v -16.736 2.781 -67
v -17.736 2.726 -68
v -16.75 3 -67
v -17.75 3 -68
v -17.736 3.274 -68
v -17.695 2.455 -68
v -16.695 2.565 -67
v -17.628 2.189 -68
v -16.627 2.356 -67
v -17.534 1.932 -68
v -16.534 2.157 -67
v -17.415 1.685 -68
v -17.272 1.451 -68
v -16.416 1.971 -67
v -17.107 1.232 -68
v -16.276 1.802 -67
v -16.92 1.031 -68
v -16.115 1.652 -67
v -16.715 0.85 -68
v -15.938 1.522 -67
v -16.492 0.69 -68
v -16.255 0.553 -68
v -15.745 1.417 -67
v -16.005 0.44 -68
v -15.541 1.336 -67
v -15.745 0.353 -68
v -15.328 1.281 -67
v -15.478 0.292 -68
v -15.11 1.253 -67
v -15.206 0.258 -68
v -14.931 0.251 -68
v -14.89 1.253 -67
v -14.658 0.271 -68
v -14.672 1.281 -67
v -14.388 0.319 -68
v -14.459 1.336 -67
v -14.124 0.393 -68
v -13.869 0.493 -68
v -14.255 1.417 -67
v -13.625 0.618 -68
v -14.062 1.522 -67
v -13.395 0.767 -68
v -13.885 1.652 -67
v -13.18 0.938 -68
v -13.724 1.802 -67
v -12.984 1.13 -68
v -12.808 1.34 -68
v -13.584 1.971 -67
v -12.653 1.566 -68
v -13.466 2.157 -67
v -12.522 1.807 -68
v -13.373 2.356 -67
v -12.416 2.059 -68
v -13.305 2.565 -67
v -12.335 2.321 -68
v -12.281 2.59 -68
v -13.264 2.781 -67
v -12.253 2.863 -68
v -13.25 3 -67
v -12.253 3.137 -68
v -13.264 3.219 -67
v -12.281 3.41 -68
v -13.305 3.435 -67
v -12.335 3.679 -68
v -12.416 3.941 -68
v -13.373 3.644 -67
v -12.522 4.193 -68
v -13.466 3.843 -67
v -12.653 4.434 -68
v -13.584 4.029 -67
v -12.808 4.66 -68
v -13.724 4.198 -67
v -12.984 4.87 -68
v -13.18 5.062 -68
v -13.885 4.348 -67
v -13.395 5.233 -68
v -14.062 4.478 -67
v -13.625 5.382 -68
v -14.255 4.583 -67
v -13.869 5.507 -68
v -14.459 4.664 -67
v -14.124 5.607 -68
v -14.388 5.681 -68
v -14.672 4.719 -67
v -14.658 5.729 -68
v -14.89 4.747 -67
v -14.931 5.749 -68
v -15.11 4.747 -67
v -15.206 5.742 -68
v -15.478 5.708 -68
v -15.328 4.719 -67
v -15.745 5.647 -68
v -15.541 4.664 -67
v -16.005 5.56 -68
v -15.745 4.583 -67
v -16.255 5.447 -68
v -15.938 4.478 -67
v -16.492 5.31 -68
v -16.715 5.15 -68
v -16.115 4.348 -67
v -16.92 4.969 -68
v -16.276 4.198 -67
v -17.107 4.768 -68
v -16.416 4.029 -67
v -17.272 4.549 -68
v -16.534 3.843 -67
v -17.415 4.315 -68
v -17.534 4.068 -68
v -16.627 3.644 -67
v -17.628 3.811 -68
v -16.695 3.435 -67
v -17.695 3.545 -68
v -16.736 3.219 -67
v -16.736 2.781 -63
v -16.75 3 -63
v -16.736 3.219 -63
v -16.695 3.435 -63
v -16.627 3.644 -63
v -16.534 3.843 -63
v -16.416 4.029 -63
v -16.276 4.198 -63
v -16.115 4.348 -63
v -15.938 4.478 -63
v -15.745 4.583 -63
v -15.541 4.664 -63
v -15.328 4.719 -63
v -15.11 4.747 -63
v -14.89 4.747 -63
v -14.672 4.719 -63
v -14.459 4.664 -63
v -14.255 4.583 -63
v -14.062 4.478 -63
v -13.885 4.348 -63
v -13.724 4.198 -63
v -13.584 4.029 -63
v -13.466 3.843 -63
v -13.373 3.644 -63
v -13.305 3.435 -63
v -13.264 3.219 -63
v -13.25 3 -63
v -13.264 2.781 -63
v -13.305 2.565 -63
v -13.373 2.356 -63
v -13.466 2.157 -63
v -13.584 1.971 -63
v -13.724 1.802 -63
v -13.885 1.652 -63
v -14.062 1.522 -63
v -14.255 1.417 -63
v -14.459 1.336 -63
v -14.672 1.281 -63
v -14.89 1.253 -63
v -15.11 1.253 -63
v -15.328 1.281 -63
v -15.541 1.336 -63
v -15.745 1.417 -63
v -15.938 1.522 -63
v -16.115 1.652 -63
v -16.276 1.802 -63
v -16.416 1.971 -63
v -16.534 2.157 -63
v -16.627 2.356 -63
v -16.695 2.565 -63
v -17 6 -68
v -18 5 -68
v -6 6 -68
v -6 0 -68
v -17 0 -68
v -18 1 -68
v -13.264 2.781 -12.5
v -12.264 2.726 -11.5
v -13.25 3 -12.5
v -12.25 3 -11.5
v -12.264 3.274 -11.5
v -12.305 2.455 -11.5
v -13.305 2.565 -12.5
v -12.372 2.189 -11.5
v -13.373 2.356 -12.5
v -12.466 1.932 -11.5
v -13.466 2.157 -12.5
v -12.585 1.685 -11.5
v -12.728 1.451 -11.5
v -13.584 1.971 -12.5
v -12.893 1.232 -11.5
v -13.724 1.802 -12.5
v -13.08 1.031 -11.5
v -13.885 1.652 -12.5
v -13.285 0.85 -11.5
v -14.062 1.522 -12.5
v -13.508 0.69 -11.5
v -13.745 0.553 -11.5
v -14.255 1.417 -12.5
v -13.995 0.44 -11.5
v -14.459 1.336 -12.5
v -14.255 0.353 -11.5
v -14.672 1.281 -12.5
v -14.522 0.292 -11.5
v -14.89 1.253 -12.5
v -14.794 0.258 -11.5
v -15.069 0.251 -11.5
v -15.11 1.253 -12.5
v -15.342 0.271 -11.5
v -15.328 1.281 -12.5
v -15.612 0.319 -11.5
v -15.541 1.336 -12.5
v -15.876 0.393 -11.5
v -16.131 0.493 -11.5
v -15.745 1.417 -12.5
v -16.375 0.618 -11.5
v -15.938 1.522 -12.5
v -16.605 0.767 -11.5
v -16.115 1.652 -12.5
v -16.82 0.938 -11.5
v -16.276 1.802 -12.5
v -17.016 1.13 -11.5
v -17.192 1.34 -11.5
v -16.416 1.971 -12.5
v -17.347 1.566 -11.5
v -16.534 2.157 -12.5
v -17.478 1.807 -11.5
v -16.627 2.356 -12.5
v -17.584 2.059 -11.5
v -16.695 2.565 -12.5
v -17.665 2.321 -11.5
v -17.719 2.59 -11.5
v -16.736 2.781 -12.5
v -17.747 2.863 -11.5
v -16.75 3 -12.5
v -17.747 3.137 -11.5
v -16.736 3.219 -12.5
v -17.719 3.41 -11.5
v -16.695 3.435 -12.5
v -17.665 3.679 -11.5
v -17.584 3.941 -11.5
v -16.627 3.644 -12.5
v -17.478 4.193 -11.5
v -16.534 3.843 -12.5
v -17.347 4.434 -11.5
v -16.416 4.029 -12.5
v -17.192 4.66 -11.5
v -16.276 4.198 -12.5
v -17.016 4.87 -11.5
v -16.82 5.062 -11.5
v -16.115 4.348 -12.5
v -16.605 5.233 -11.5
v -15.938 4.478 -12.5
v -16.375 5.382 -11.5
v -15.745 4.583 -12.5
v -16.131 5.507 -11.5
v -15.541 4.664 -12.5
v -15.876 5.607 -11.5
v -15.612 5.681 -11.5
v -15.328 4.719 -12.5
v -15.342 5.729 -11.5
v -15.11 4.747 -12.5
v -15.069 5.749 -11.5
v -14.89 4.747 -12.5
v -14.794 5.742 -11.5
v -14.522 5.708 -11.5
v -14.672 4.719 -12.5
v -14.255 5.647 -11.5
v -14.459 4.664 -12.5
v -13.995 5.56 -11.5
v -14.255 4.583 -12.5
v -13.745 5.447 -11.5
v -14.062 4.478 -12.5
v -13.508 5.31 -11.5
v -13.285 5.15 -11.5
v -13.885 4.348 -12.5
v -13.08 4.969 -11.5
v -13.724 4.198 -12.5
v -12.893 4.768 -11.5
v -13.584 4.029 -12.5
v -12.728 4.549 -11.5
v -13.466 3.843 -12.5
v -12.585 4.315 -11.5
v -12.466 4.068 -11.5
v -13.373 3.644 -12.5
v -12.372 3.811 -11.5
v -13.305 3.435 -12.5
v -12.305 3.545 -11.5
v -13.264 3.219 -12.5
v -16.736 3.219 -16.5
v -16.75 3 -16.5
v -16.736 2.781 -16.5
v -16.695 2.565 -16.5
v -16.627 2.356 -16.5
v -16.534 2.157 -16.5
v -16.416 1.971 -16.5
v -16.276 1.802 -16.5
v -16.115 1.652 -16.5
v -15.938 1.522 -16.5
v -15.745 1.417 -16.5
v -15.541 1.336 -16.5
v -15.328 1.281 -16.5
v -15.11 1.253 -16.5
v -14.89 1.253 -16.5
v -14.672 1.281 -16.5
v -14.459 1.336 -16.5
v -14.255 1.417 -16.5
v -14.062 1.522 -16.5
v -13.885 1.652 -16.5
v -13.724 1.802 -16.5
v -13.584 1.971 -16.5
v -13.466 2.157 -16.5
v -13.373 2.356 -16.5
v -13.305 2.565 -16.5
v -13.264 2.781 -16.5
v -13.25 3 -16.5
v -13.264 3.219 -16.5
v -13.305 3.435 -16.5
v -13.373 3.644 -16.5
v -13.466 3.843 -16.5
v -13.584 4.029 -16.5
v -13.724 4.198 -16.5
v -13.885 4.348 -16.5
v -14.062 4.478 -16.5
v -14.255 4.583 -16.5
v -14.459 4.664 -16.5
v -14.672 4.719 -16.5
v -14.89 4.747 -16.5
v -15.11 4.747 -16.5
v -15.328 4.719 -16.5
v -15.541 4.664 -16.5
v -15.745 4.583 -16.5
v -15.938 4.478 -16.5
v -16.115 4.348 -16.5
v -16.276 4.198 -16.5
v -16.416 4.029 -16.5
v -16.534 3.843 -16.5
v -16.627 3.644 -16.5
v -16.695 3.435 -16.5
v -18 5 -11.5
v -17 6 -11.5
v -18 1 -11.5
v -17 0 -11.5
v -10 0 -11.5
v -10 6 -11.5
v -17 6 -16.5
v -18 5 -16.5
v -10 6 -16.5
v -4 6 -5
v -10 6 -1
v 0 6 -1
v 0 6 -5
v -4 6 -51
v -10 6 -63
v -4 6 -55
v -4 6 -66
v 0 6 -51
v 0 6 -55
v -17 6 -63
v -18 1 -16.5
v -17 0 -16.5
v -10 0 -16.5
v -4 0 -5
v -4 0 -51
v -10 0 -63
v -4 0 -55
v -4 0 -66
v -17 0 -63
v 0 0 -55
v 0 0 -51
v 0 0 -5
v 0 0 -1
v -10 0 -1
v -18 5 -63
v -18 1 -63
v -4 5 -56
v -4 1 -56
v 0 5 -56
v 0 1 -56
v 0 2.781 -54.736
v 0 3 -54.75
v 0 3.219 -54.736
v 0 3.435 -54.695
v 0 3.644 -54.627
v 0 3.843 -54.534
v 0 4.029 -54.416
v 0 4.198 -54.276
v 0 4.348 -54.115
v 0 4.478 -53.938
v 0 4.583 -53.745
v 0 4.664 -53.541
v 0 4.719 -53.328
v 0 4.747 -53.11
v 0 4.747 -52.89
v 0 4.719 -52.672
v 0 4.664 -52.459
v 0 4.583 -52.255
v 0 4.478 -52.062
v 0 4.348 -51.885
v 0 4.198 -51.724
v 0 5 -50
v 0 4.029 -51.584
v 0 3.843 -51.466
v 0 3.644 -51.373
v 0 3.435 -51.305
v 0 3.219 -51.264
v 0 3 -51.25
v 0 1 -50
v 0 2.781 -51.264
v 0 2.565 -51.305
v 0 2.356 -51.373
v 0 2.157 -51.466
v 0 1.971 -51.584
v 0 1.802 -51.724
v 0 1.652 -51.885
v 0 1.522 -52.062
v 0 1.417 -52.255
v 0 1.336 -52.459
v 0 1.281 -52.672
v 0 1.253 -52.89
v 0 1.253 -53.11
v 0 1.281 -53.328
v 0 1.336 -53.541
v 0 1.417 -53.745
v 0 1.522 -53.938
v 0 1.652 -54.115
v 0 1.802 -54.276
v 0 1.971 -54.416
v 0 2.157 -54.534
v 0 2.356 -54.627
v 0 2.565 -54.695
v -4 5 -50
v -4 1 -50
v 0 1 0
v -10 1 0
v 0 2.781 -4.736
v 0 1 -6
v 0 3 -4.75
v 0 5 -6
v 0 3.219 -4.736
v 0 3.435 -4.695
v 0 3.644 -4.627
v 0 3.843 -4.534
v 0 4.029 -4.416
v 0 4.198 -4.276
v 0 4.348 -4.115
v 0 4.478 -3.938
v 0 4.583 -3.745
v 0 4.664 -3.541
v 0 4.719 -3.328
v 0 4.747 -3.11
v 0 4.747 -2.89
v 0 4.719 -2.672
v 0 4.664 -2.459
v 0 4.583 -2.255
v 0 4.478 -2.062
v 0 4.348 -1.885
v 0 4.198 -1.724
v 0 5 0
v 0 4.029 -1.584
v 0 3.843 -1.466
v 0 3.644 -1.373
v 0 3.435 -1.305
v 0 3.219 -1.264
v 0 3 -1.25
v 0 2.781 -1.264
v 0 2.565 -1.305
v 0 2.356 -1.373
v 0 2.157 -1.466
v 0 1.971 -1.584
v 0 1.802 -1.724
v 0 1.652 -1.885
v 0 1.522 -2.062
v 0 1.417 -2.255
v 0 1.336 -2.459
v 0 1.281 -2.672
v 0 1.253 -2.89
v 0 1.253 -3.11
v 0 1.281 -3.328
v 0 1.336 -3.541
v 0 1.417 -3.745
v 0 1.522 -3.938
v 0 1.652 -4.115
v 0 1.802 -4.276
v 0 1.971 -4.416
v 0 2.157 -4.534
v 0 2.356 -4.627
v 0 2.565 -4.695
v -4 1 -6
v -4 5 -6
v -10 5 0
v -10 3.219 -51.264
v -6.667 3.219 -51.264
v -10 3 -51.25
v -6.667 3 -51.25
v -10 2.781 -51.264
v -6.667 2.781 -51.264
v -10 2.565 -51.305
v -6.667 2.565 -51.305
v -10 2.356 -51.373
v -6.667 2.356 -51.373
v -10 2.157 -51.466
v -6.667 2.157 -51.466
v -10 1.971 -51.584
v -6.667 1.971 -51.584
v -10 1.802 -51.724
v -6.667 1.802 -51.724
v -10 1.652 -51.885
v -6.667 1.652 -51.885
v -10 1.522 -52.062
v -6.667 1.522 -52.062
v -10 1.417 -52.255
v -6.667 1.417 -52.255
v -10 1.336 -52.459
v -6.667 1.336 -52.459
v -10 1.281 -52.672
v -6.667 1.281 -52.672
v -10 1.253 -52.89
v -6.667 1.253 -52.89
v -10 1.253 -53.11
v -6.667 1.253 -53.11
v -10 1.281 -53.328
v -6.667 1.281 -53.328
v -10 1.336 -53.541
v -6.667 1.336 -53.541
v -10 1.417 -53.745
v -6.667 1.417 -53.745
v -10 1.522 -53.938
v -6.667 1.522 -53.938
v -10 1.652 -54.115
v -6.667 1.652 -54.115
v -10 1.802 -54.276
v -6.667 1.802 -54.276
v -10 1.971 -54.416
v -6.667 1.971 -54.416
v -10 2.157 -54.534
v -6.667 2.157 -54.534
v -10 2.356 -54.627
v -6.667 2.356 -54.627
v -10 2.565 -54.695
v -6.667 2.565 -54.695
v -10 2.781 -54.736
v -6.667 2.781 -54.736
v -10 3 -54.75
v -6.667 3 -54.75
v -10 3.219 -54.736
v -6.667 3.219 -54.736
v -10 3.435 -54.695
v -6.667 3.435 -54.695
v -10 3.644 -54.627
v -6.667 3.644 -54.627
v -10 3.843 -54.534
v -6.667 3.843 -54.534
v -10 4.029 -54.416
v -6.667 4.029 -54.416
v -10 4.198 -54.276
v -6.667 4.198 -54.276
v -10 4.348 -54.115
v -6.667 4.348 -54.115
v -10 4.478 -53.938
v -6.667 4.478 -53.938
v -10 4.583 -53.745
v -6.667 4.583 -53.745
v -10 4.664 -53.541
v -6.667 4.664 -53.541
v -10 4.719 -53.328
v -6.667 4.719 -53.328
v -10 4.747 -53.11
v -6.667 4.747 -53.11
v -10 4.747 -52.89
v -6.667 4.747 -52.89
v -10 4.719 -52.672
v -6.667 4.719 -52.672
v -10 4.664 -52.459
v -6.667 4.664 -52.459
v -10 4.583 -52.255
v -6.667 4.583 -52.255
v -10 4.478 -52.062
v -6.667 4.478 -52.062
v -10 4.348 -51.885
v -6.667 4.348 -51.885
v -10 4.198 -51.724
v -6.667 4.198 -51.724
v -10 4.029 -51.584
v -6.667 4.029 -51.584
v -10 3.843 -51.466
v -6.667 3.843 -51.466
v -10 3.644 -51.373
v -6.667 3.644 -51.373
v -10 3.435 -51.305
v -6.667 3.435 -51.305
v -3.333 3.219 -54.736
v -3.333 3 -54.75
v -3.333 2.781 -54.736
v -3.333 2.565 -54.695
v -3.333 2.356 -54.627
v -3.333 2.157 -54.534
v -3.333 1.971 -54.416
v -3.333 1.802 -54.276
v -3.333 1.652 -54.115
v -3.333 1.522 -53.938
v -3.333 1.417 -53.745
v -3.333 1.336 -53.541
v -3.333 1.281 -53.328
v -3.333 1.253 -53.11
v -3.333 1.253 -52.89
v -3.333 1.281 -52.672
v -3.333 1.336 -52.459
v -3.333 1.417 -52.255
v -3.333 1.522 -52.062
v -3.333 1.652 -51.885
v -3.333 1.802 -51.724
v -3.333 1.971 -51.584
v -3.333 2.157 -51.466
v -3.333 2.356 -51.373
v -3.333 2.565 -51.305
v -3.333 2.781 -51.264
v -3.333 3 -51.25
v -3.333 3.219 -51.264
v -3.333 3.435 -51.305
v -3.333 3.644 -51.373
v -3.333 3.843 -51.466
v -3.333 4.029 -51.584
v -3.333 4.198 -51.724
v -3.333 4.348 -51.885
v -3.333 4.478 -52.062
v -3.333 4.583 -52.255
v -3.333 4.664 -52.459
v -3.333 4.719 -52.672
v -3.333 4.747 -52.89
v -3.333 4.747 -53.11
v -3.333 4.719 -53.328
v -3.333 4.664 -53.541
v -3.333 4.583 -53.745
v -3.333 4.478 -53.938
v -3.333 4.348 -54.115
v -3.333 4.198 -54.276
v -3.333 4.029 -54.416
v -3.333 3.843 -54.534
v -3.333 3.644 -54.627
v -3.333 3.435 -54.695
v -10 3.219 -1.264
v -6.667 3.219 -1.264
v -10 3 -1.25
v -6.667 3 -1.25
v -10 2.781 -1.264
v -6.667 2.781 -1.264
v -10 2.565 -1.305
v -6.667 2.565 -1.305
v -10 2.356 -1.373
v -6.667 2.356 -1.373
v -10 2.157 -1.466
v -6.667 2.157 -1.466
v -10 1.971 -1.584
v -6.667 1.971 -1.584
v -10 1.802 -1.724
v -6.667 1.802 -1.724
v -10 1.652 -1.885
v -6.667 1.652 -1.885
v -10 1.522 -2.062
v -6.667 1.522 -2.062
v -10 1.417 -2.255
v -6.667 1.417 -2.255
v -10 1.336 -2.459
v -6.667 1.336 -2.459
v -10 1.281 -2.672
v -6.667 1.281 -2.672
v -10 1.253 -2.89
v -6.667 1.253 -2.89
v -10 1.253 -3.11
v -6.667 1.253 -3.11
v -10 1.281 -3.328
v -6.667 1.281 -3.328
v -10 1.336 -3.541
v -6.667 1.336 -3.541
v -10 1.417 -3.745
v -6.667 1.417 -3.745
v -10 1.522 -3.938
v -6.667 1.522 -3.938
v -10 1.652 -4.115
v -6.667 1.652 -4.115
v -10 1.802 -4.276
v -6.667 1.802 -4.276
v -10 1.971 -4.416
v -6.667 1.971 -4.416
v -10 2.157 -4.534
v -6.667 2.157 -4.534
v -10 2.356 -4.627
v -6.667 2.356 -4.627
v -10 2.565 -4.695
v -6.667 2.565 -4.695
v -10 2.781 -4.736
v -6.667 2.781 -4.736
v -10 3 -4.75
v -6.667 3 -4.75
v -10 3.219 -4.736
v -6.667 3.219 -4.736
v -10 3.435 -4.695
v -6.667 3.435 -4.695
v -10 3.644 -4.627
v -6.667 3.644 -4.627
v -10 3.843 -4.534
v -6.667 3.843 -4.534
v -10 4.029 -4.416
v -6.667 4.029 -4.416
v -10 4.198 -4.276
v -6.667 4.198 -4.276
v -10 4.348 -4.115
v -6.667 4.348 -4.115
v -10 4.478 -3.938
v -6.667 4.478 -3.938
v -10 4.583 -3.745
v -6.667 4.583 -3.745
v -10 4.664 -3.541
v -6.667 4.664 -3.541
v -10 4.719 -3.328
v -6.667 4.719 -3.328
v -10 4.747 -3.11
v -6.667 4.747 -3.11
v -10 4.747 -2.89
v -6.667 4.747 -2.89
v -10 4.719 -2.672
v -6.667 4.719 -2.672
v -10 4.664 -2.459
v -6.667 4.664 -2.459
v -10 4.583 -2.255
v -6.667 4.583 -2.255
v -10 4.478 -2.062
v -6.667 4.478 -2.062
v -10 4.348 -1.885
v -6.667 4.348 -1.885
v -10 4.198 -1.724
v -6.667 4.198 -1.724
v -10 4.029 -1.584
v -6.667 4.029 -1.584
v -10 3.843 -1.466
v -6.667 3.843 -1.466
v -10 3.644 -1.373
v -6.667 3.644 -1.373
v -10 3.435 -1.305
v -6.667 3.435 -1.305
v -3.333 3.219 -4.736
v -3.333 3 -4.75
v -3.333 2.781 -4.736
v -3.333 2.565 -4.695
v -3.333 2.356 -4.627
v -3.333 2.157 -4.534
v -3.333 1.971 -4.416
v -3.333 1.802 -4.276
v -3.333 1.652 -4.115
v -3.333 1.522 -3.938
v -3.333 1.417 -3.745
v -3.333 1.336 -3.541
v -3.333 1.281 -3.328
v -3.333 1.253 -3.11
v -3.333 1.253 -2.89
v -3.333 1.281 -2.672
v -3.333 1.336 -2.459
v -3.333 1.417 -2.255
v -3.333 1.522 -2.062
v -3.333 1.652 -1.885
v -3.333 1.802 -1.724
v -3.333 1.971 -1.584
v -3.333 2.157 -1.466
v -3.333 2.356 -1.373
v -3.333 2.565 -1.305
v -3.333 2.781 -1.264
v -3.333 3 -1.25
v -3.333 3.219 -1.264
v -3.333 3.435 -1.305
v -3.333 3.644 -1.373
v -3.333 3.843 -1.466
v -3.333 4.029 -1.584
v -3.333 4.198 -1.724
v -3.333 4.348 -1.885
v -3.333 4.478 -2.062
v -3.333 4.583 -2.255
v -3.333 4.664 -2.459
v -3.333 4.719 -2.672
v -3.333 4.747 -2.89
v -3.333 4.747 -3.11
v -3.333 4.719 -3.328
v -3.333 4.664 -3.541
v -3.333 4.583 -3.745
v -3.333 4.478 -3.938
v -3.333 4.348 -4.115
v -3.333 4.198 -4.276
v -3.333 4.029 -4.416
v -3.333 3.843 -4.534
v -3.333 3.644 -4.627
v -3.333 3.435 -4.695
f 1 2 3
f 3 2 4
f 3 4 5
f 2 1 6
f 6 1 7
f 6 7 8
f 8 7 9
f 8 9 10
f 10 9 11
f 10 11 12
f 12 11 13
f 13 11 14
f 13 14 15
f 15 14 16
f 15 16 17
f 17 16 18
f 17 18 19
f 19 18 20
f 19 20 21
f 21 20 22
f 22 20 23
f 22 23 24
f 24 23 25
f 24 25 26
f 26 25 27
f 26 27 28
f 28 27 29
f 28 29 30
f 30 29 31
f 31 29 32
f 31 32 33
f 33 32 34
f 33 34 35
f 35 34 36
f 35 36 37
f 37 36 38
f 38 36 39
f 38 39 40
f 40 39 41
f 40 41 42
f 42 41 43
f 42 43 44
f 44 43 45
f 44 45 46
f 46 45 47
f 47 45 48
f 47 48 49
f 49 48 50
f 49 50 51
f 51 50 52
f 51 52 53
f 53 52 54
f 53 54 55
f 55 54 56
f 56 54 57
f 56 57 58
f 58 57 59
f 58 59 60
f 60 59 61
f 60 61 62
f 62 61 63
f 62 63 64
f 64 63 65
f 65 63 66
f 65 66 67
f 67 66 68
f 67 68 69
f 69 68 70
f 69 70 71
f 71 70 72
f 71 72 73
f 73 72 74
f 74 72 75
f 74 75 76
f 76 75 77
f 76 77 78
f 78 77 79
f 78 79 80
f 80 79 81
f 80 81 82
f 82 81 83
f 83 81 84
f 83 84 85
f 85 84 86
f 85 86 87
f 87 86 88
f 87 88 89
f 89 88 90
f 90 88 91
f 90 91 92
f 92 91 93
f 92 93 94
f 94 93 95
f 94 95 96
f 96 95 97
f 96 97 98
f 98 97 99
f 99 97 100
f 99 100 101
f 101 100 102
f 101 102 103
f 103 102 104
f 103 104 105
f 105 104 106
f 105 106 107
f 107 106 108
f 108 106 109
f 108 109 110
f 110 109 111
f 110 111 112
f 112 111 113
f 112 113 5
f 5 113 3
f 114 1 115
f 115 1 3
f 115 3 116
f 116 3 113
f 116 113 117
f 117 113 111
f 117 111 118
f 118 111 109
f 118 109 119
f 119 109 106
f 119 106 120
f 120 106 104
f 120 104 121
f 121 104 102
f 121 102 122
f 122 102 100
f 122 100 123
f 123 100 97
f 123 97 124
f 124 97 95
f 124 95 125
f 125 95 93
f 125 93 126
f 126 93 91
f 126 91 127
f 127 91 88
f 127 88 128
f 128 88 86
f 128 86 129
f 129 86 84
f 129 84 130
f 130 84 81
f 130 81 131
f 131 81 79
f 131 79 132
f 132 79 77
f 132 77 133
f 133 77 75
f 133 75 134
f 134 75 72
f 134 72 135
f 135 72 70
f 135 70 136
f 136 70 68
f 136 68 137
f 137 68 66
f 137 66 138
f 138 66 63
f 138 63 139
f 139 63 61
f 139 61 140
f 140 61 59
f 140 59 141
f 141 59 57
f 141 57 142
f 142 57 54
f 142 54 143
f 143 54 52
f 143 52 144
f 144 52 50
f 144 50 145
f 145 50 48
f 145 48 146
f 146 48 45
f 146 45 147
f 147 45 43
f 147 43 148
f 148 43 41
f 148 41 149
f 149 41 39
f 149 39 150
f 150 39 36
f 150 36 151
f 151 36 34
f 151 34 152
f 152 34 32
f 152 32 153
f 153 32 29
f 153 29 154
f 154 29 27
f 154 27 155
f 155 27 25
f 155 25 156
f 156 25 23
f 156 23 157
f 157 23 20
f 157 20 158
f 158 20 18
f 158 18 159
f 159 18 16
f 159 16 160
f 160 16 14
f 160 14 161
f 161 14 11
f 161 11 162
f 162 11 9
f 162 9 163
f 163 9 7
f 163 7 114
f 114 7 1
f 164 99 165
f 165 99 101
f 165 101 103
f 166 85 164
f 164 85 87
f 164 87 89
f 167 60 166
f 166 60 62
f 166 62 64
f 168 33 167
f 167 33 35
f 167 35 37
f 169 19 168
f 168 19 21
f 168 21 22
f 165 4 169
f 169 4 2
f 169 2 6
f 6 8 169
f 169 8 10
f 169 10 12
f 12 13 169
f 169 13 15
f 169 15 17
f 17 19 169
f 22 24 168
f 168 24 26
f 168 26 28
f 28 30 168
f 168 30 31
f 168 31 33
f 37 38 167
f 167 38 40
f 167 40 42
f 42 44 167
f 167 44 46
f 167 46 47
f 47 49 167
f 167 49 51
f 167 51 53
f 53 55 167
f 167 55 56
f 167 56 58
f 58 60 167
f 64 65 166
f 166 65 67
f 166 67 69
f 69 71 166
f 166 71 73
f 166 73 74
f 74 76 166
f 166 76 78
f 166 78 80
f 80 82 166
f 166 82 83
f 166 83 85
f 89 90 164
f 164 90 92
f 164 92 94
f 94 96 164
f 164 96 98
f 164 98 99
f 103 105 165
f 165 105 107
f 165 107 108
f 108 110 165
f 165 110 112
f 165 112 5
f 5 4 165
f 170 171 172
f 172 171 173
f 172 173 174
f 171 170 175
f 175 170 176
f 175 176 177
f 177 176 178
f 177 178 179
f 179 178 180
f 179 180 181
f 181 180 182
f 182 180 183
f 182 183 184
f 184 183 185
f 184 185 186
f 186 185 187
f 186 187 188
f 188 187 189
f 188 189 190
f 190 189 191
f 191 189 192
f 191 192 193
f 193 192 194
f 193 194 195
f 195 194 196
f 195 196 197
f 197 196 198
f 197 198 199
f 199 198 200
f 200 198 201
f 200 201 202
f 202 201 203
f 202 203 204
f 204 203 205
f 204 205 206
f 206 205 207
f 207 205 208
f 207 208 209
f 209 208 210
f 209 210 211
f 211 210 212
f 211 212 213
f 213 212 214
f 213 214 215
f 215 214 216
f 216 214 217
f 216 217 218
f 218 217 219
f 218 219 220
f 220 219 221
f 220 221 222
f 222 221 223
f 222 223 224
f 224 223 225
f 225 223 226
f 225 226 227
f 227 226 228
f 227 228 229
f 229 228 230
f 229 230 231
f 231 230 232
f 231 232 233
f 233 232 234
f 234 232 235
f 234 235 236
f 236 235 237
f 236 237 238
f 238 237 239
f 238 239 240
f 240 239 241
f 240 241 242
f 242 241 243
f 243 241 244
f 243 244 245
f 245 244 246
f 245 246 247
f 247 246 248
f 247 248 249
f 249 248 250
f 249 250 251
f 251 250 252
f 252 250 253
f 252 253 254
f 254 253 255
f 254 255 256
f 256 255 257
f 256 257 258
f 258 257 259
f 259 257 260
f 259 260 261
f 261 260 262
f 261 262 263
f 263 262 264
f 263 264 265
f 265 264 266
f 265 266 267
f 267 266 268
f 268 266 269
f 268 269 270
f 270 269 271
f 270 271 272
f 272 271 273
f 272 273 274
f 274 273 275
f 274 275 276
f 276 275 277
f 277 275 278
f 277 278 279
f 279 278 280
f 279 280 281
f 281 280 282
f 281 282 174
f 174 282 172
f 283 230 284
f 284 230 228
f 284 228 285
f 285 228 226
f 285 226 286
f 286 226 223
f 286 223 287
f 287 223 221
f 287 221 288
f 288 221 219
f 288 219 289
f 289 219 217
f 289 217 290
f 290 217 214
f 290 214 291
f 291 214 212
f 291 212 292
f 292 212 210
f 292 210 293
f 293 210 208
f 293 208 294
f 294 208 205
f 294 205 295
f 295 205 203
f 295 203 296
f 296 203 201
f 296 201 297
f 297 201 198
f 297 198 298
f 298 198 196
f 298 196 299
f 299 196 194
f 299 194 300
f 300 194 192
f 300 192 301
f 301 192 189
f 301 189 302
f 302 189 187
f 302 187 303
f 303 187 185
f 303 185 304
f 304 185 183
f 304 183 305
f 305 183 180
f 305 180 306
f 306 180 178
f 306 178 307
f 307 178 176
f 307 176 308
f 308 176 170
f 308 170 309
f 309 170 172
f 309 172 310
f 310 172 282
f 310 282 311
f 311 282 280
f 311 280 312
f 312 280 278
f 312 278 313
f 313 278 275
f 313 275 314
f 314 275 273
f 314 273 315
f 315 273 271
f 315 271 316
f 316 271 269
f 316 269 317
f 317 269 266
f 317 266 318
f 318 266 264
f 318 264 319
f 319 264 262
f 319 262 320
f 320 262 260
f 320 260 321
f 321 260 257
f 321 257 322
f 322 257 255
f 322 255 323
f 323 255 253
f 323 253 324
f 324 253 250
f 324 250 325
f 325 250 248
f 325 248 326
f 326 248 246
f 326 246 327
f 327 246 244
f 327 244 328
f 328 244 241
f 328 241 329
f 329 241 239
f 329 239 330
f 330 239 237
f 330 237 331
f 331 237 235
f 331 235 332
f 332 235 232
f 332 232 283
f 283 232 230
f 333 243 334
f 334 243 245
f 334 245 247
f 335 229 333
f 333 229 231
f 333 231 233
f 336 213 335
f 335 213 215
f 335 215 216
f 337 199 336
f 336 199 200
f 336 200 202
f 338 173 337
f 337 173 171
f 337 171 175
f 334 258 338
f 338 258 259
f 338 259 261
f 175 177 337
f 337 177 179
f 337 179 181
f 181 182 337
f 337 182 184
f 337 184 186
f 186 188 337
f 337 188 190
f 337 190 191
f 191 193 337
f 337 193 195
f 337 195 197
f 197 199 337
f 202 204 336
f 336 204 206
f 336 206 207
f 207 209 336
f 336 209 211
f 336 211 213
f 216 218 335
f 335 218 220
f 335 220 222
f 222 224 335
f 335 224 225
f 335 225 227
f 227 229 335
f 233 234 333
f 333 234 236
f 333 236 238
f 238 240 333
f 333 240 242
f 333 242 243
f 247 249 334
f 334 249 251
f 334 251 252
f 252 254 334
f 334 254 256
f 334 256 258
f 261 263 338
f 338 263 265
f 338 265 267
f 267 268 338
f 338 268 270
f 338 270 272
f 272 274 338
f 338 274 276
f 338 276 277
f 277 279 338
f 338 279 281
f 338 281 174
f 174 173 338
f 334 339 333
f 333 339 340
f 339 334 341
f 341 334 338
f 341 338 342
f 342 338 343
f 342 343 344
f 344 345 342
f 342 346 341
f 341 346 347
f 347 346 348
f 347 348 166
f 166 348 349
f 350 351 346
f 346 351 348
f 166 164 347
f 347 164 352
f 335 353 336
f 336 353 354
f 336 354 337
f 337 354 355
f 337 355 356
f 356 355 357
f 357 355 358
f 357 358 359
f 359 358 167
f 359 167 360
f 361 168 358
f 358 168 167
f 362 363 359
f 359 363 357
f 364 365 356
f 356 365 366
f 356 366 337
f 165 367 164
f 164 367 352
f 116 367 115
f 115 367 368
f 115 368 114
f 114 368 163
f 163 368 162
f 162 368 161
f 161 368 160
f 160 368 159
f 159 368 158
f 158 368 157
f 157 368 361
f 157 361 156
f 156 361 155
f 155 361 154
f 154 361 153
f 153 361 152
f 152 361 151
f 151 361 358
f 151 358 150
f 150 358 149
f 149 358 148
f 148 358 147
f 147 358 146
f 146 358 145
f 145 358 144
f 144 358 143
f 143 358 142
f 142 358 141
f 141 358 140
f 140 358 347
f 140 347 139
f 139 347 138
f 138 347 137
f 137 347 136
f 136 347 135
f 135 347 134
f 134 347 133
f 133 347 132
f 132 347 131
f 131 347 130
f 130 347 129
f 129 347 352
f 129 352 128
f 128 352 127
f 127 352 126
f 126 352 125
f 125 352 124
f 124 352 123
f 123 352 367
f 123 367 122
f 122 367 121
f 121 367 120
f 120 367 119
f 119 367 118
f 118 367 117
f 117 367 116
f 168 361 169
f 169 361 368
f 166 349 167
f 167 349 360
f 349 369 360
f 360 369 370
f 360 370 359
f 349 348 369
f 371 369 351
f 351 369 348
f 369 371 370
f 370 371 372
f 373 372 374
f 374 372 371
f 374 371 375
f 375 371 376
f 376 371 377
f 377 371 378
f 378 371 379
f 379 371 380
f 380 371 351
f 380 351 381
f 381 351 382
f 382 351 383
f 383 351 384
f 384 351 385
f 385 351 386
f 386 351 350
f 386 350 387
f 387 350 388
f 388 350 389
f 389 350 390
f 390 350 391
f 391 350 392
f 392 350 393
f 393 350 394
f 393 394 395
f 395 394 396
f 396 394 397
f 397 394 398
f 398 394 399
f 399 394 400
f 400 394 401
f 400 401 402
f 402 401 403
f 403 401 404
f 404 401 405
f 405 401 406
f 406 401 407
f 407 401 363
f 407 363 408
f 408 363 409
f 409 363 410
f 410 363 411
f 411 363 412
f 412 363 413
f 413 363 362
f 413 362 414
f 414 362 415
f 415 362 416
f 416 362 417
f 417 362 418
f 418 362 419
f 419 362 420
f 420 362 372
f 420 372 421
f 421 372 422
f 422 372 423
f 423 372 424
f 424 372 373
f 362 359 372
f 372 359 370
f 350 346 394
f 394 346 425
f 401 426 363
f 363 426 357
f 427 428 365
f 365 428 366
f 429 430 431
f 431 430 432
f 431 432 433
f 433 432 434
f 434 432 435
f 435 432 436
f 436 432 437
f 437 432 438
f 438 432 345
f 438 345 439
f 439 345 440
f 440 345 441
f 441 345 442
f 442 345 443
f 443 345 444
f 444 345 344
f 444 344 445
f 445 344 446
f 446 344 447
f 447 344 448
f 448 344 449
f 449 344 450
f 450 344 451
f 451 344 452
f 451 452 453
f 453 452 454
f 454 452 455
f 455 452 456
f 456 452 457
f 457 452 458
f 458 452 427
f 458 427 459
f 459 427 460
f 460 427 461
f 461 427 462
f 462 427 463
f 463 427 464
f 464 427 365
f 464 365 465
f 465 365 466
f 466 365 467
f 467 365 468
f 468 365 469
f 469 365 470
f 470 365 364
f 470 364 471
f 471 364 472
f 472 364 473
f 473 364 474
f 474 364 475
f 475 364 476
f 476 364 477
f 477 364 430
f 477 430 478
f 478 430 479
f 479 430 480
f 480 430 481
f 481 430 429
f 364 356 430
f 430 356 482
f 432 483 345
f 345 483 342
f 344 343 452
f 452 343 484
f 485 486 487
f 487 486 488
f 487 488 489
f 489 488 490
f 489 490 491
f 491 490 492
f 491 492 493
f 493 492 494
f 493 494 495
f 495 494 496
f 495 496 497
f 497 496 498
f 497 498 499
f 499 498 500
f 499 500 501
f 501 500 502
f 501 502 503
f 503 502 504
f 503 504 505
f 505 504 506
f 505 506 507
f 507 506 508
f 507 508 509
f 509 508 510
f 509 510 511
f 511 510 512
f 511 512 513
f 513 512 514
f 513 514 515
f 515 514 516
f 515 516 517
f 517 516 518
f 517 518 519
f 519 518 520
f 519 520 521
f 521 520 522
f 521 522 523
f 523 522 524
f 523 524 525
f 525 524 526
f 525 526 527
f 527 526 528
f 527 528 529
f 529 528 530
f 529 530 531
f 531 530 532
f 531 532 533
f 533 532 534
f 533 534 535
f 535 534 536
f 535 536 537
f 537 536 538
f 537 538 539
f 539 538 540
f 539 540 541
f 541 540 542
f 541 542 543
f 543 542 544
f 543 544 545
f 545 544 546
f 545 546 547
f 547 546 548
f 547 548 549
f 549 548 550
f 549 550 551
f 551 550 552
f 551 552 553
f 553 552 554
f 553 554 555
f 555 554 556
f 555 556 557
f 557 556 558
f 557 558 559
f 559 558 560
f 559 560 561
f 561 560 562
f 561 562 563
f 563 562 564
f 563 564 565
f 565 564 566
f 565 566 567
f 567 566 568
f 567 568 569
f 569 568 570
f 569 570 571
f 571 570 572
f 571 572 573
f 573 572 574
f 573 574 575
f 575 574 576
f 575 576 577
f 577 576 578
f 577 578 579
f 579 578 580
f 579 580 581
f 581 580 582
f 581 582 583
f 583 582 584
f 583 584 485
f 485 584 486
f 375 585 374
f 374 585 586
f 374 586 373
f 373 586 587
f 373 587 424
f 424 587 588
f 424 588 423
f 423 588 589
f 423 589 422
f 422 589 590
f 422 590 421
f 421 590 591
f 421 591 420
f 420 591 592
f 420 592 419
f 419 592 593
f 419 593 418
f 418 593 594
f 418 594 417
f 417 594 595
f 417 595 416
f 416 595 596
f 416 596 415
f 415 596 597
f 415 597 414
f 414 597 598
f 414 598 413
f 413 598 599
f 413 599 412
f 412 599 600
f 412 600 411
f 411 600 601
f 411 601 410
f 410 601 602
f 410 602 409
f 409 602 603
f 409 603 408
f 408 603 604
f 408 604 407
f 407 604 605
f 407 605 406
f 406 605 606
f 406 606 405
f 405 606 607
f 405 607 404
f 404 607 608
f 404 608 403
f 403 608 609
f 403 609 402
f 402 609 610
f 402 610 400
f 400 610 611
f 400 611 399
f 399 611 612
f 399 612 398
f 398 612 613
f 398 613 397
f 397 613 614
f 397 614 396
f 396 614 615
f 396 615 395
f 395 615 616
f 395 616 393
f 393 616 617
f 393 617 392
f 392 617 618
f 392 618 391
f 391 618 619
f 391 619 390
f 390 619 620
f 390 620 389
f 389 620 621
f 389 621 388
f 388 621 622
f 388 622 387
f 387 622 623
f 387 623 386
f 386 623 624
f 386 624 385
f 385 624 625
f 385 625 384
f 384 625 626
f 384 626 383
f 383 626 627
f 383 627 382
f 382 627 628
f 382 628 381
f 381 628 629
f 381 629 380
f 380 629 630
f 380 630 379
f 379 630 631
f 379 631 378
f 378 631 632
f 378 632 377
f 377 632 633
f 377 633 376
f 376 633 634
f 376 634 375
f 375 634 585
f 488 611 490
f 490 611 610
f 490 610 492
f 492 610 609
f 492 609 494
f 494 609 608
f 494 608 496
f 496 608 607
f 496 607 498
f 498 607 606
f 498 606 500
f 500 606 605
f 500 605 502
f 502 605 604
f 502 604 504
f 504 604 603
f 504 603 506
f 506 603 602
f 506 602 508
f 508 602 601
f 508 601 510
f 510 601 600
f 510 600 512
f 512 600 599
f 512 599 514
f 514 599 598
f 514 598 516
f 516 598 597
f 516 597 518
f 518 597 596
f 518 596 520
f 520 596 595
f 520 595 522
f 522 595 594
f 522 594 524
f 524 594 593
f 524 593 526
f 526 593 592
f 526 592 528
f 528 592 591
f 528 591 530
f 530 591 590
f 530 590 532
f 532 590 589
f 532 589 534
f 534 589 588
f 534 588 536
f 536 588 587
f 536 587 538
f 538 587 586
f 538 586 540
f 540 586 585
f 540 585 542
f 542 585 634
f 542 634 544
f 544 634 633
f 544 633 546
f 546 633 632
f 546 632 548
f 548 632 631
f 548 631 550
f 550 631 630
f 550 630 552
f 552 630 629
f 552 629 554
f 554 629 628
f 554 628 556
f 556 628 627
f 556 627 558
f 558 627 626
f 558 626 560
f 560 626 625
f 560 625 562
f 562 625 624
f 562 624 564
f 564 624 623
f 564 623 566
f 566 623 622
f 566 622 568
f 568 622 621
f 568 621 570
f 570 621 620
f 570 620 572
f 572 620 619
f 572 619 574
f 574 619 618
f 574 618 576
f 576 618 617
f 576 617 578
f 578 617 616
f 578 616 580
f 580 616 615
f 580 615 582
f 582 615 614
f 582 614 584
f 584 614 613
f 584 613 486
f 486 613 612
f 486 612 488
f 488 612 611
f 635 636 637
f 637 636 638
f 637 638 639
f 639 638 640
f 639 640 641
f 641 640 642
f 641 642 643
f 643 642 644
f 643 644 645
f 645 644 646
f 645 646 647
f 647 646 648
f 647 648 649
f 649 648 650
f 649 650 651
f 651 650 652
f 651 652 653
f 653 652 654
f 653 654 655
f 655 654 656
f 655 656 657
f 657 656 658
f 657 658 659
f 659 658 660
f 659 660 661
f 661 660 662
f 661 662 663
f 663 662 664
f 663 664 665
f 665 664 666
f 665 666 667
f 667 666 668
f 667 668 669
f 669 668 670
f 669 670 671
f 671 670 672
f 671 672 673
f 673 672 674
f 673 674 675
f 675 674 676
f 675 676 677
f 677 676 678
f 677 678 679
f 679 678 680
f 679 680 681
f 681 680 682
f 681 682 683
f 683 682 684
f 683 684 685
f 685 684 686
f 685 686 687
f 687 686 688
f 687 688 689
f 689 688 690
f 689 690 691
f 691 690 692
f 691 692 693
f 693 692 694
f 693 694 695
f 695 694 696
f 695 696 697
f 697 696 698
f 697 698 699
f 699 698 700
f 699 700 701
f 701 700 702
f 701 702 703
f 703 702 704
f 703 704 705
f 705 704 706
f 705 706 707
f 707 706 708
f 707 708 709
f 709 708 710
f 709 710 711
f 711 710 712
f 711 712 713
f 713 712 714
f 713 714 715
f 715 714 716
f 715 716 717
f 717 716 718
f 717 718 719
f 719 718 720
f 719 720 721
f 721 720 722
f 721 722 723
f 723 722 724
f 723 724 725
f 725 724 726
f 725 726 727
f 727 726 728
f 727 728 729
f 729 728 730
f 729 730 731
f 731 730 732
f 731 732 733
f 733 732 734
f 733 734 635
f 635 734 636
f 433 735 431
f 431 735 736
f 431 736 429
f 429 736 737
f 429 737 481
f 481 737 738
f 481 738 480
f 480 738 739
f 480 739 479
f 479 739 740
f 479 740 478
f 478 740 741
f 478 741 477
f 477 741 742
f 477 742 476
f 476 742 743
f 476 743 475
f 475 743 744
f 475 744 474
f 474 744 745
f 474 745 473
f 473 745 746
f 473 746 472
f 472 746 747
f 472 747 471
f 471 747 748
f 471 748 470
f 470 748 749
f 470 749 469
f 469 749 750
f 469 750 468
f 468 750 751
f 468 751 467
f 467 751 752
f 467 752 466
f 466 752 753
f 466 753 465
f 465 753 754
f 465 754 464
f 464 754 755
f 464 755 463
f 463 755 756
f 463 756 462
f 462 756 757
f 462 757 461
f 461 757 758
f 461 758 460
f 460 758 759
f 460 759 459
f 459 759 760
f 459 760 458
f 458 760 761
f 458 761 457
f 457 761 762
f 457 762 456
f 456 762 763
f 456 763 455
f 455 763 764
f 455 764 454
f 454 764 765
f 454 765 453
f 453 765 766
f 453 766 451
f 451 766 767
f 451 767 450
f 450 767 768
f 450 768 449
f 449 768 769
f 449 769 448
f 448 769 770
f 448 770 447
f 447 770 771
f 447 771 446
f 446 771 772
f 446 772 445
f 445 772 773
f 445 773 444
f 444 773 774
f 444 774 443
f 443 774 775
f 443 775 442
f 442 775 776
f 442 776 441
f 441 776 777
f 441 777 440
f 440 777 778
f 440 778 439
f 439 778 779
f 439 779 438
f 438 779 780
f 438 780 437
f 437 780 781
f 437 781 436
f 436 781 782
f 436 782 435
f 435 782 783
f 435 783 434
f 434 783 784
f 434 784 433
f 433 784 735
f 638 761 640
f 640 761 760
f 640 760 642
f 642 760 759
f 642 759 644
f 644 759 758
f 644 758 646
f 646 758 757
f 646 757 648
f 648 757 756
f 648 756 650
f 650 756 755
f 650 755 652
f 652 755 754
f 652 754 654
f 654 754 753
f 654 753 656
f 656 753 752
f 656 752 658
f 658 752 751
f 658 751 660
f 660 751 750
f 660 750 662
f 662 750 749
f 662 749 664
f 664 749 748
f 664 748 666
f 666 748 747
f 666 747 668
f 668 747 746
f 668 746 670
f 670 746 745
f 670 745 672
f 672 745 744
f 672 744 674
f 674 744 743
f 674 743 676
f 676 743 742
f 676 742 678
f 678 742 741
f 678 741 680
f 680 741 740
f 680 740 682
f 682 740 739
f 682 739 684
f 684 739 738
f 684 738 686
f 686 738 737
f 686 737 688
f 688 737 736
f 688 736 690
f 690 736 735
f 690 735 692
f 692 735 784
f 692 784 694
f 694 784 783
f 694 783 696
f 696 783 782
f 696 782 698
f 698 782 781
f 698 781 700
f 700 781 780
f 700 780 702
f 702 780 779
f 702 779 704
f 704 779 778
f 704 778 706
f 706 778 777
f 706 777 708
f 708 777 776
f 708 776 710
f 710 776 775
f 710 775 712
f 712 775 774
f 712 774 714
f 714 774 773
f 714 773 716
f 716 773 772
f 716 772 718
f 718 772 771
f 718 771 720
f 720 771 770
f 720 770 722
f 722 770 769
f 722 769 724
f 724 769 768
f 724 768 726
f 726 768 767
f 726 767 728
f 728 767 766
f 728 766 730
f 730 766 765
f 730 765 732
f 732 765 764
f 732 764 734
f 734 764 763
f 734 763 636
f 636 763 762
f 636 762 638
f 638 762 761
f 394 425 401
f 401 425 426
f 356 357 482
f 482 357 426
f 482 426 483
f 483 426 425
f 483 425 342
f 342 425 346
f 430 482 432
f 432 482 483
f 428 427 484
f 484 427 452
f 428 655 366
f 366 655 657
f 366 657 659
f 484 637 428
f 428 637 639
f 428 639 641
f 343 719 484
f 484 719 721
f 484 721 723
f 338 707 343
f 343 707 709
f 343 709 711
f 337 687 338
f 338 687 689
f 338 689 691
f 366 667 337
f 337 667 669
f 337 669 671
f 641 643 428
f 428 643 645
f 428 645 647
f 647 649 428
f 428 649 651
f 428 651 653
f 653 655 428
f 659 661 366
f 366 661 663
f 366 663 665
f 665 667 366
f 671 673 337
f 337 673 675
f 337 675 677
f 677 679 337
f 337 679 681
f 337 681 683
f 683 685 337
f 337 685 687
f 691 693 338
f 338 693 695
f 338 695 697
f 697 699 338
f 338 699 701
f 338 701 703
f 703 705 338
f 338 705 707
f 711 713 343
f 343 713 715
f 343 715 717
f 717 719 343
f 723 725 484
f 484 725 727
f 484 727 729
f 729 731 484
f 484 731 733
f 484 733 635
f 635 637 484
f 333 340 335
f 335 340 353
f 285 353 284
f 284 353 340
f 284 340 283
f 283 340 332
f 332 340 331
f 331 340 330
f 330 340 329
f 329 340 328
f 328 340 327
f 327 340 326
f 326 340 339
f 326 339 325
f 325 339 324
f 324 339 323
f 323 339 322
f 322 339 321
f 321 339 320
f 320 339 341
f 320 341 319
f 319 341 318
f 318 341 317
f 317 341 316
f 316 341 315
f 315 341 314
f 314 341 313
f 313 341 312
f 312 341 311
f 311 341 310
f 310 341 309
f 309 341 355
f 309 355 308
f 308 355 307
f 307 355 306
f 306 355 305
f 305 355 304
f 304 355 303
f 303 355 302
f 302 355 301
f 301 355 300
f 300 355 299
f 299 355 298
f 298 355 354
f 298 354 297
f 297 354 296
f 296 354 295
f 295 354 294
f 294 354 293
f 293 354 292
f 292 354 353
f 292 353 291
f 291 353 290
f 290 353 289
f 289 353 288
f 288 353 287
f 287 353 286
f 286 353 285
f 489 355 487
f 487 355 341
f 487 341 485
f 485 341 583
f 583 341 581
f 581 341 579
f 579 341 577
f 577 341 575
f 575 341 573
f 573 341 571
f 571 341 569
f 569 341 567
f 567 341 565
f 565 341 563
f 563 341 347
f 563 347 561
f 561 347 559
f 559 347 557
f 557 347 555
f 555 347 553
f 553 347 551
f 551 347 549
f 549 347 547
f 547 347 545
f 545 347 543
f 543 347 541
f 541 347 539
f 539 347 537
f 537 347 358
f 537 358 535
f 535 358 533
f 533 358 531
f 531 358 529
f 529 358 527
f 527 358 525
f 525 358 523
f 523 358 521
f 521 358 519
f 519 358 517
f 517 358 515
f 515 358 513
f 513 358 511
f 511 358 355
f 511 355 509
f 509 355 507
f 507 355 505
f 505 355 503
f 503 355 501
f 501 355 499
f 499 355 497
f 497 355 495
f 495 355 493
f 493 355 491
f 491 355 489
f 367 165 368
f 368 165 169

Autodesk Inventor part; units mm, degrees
ref_plane "YZ Plane" through (0, 0, 0) normal (1, 0, 0) x (0, 1, 0)
ref_plane "XZ Plane" through (0, 0, 0) normal (0, 1, 0) x (-1, 0, 0)
ref_plane "XY Plane" through (0, 0, 0) normal (0, 0, 1) x (1, 0, 0)
sketch "Sketch1" plane through (0, 0, 0) normal (0, 1, 0) x (-1, 0, 0)
  line L0 (0, 0) -> (0, -6)
  line L1 (0, -6) -> (4, -6)
  line L2 (4, -6) -> (4, -50)
  line L3 (4, -50) -> (0, -50)
  line L4 (0, -50) -> (0, -56)
  line L5 (0, 0) -> (10, 0)
  line L6 (0, 0) -> (10, 0)
  line L7 (10, 0) -> (10, -11.5)
  line L8 (10, -11.5) -> (18, -11.5)
  line L9 (18, -11.5) -> (18, -16.5)
  line L10 (18, -16.5) -> (10, -16.5)
  line L11 (10, -16.5) -> (10, -63)
  line L12 (10, -63) -> (18, -63)
  line L13 (18, -63) -> (18, -68)
  line L14 (18, -68) -> (10, -68)
  line L15 (0, -56) -> (4, -56)
  line L16 (4, -56) -> (4, -68)
  line L17 (4, -68) -> (10, -68)
  point P0 (0, -3)
  point P1 (0, -53)
  dimension "d2" = 50
  dimension "d3" = 6
  dimension "d4" = 4
  dimension "d19" = 6
  dimension "d20" = 11.5
  dimension "d21" = 5
  dimension "d22" = 8
  dimension "d23" = 46.5
extrude "Extrusion1" add sketch "Sketch1" along normal blind 6
sketch "Sketch4" plane through (0, 0, -50) normal (1, 0, 0) x (0, 0, -1)
  line L0 (-44, 0) -> (0, 0) projected
  line L1 (-50, 0) -> (-50, 6) projected
  line L2 (-44, 0) -> (-50, 6) construction
  circle A0 centre (-47, 3) radius 1.75
  line L3 (0, 0) -> (6, 0) projected
  line L4 (-44, 6) -> (0, 6) projected
  line L5 (6, 0) -> (0, 6) construction
  circle A1 centre (3, 3) radius 1.75
  dimension "d24" = 3.5
extrude "Extrusion4" cut sketch "Sketch4" against normal through all
chamfer "Chamfer2" distance 1 angle 45 8 edges at (-5, 6, 0) (-2, 6, -6) (-2, 0, -6) (-5, 0, 0) (-2, 0, -50) (-2, 6, -50) (-2, 0, -56) (-2, 6, -56)
chamfer "Chamfer3" distance 2 angle 45 1 edges at (-4, 3, -68)
sketch "Sketch5" plane through (-18, 0, -11.5) normal (0, 0, 1) x (1, 0, 0)
  circle A0 centre (3, 3) radius 3 construction
  line L0 (0, 6) -> (8, 6) projected
  line L1 (0, 0) -> (0, 6) projected
  line L2 (0, 0) -> (8, 0) projected
  circle A1 centre (3, 3) radius 1.75
  point P0 (18, 0)
  dimension "d33" = 3.5
chamfer "Chamfer4" distance 1 angle 45 4 edges at (-18, 0, -65.5) (-18, 6, -65.5) (-18, 0, -14) (-18, 6, -14)
extrude "Extrusion5" cut sketch "Sketch5" against normal through all
chamfer "Chamfer5" distance 1 angle 45 2 edges at (-16.75, 3, -11.5) (-16.75, 3, -68)
properties part number "camadapter2"
